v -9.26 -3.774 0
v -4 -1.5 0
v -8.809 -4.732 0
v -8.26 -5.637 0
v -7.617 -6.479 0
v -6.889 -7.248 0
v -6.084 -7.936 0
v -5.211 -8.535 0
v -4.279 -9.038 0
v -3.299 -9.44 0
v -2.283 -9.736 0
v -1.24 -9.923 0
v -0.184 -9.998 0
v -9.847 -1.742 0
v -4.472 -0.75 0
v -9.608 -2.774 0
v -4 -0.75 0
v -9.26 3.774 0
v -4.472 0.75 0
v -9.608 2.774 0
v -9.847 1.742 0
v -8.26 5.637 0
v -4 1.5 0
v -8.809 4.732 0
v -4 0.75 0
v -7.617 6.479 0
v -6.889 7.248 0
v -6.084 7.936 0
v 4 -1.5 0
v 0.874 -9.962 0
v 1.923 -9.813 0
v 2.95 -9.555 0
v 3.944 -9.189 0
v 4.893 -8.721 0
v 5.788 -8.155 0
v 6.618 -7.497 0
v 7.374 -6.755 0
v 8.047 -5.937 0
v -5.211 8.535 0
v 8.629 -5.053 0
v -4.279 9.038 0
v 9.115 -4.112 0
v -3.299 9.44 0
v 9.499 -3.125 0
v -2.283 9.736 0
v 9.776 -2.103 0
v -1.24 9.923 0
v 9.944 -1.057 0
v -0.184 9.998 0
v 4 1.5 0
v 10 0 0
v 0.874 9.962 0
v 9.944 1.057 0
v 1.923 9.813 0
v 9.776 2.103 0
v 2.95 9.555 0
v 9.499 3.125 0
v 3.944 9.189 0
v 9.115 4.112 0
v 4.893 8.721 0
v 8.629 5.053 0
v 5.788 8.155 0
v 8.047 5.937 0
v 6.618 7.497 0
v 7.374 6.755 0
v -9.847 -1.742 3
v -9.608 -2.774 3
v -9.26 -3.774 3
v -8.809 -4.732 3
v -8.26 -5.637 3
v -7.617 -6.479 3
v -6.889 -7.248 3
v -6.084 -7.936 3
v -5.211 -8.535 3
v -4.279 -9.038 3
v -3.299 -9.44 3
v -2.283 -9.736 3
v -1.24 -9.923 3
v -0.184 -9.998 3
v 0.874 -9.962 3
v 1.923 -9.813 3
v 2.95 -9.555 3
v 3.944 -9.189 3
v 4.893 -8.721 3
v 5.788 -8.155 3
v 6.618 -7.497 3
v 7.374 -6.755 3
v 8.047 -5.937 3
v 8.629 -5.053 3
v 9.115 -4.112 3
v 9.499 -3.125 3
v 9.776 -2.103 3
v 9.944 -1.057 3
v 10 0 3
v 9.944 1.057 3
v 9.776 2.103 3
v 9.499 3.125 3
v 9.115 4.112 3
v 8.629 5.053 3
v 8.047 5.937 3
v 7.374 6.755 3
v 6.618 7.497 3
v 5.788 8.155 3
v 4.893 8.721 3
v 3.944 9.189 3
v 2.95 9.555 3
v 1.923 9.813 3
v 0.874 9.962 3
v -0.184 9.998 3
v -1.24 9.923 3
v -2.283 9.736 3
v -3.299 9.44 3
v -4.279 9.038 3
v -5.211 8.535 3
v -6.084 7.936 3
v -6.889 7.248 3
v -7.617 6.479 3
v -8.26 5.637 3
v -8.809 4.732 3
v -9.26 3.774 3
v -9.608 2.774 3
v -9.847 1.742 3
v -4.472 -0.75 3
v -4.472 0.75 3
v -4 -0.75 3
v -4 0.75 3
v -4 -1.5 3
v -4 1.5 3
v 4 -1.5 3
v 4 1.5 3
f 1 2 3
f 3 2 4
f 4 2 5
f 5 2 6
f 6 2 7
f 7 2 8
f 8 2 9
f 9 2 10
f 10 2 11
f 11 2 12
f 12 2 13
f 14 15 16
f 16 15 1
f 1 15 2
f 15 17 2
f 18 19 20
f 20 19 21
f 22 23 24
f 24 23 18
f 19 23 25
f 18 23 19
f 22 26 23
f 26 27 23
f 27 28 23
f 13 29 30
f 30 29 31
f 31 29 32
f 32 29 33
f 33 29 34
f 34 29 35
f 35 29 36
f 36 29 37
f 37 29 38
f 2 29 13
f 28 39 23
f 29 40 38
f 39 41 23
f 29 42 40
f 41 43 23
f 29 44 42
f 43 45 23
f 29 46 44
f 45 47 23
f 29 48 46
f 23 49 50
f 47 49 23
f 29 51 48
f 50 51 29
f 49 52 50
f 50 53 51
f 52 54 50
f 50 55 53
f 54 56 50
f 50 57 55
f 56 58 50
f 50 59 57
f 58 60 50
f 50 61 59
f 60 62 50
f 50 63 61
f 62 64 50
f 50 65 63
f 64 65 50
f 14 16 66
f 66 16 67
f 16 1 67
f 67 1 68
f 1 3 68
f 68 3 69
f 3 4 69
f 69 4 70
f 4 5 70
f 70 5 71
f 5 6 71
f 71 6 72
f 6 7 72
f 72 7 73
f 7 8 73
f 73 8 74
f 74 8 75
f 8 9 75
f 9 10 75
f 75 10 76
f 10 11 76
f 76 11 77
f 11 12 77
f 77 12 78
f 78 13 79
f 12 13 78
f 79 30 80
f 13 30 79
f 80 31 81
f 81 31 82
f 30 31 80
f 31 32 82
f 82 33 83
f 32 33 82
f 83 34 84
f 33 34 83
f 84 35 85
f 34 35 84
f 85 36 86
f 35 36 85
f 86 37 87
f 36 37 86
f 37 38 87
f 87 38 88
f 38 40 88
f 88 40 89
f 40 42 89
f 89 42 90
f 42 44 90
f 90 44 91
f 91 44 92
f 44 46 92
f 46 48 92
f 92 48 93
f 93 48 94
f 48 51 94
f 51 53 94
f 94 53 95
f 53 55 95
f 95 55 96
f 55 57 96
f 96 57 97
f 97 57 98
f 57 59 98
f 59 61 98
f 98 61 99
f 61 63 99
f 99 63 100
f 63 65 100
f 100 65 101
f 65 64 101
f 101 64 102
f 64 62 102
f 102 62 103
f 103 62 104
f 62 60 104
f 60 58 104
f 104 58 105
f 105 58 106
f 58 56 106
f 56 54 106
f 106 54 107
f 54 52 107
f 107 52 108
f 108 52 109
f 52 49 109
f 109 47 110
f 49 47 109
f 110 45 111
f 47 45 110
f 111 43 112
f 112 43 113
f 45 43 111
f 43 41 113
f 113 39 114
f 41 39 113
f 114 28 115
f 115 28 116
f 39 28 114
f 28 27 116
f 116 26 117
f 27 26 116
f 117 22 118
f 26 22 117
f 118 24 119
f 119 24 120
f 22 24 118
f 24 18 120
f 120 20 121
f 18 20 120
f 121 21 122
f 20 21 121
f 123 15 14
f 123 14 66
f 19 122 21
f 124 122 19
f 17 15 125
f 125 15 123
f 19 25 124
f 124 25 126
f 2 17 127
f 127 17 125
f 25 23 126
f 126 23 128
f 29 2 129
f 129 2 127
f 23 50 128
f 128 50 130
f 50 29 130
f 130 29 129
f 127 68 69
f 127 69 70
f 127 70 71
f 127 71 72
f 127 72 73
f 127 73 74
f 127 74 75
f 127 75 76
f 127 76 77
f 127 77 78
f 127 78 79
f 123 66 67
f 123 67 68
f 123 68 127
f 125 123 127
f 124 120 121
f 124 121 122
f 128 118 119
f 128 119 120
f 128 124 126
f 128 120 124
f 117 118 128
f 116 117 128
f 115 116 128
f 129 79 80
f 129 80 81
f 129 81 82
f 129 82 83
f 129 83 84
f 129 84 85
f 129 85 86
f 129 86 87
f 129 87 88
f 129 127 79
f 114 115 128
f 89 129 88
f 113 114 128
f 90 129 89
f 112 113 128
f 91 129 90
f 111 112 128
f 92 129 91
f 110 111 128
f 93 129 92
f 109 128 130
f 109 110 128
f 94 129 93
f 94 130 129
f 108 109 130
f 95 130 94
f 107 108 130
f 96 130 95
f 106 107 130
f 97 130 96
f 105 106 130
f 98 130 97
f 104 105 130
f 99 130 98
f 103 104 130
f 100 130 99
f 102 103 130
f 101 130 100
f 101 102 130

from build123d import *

# Parameters (mm, degrees)
PAD_DEPTH        = 3
CHAMFER_SIZE2    = 1
CHAMFER_SIZE     = 5.5
CHAMFER001_SIZE2 = 5.5
CHAMFER001_SIZE  = 1


with BuildPart() as part:
    # Sketch → Pad (new body)
    with BuildSketch(Plane.XY):
        with BuildLine():
            Line((-9.971835, 0.75), (-4, 0.75))
            Line((-4, 0.75), (-4, 1.5))
            Line((-4, 1.5), (4, 1.5))
            Line((4, 1.5), (4, -1.5))
            Line((4, -1.5), (-4, -1.5))
            Line((-4, -1.5), (-4, -0.75))
            Line((-4, -0.75), (-9.971835, -0.75))
            ThreePointArc((-9.971835, -0.75), (10, 0), (-9.971835, 0.75))
        make_face()
    extrude(amount=PAD_DEPTH)

    # Chamfer
    chamfer_edges = [part.edges().sort_by_distance(p)[0] for p in [
        (-9.971835, 0.75, 1.5),
    ]]
    chamfer_side = part.faces().sort_by_distance((-6.985918, 0.75, 1.5))[0]
    chamfer(chamfer_edges, length=CHAMFER_SIZE, length2=CHAMFER_SIZE2, reference=chamfer_side)

    # Chamfer001
    chamfer001_edges = [part.edges().sort_by_distance(p)[0] for p in [
        (-9.971835, -0.75, 1.5),
    ]]
    chamfer001_side = part.faces().sort_by_distance((9.987492, -0.5, 1.5))[0]
    chamfer(chamfer001_edges, length=CHAMFER001_SIZE, length2=CHAMFER001_SIZE2, reference=chamfer001_side)


solid = part.part
